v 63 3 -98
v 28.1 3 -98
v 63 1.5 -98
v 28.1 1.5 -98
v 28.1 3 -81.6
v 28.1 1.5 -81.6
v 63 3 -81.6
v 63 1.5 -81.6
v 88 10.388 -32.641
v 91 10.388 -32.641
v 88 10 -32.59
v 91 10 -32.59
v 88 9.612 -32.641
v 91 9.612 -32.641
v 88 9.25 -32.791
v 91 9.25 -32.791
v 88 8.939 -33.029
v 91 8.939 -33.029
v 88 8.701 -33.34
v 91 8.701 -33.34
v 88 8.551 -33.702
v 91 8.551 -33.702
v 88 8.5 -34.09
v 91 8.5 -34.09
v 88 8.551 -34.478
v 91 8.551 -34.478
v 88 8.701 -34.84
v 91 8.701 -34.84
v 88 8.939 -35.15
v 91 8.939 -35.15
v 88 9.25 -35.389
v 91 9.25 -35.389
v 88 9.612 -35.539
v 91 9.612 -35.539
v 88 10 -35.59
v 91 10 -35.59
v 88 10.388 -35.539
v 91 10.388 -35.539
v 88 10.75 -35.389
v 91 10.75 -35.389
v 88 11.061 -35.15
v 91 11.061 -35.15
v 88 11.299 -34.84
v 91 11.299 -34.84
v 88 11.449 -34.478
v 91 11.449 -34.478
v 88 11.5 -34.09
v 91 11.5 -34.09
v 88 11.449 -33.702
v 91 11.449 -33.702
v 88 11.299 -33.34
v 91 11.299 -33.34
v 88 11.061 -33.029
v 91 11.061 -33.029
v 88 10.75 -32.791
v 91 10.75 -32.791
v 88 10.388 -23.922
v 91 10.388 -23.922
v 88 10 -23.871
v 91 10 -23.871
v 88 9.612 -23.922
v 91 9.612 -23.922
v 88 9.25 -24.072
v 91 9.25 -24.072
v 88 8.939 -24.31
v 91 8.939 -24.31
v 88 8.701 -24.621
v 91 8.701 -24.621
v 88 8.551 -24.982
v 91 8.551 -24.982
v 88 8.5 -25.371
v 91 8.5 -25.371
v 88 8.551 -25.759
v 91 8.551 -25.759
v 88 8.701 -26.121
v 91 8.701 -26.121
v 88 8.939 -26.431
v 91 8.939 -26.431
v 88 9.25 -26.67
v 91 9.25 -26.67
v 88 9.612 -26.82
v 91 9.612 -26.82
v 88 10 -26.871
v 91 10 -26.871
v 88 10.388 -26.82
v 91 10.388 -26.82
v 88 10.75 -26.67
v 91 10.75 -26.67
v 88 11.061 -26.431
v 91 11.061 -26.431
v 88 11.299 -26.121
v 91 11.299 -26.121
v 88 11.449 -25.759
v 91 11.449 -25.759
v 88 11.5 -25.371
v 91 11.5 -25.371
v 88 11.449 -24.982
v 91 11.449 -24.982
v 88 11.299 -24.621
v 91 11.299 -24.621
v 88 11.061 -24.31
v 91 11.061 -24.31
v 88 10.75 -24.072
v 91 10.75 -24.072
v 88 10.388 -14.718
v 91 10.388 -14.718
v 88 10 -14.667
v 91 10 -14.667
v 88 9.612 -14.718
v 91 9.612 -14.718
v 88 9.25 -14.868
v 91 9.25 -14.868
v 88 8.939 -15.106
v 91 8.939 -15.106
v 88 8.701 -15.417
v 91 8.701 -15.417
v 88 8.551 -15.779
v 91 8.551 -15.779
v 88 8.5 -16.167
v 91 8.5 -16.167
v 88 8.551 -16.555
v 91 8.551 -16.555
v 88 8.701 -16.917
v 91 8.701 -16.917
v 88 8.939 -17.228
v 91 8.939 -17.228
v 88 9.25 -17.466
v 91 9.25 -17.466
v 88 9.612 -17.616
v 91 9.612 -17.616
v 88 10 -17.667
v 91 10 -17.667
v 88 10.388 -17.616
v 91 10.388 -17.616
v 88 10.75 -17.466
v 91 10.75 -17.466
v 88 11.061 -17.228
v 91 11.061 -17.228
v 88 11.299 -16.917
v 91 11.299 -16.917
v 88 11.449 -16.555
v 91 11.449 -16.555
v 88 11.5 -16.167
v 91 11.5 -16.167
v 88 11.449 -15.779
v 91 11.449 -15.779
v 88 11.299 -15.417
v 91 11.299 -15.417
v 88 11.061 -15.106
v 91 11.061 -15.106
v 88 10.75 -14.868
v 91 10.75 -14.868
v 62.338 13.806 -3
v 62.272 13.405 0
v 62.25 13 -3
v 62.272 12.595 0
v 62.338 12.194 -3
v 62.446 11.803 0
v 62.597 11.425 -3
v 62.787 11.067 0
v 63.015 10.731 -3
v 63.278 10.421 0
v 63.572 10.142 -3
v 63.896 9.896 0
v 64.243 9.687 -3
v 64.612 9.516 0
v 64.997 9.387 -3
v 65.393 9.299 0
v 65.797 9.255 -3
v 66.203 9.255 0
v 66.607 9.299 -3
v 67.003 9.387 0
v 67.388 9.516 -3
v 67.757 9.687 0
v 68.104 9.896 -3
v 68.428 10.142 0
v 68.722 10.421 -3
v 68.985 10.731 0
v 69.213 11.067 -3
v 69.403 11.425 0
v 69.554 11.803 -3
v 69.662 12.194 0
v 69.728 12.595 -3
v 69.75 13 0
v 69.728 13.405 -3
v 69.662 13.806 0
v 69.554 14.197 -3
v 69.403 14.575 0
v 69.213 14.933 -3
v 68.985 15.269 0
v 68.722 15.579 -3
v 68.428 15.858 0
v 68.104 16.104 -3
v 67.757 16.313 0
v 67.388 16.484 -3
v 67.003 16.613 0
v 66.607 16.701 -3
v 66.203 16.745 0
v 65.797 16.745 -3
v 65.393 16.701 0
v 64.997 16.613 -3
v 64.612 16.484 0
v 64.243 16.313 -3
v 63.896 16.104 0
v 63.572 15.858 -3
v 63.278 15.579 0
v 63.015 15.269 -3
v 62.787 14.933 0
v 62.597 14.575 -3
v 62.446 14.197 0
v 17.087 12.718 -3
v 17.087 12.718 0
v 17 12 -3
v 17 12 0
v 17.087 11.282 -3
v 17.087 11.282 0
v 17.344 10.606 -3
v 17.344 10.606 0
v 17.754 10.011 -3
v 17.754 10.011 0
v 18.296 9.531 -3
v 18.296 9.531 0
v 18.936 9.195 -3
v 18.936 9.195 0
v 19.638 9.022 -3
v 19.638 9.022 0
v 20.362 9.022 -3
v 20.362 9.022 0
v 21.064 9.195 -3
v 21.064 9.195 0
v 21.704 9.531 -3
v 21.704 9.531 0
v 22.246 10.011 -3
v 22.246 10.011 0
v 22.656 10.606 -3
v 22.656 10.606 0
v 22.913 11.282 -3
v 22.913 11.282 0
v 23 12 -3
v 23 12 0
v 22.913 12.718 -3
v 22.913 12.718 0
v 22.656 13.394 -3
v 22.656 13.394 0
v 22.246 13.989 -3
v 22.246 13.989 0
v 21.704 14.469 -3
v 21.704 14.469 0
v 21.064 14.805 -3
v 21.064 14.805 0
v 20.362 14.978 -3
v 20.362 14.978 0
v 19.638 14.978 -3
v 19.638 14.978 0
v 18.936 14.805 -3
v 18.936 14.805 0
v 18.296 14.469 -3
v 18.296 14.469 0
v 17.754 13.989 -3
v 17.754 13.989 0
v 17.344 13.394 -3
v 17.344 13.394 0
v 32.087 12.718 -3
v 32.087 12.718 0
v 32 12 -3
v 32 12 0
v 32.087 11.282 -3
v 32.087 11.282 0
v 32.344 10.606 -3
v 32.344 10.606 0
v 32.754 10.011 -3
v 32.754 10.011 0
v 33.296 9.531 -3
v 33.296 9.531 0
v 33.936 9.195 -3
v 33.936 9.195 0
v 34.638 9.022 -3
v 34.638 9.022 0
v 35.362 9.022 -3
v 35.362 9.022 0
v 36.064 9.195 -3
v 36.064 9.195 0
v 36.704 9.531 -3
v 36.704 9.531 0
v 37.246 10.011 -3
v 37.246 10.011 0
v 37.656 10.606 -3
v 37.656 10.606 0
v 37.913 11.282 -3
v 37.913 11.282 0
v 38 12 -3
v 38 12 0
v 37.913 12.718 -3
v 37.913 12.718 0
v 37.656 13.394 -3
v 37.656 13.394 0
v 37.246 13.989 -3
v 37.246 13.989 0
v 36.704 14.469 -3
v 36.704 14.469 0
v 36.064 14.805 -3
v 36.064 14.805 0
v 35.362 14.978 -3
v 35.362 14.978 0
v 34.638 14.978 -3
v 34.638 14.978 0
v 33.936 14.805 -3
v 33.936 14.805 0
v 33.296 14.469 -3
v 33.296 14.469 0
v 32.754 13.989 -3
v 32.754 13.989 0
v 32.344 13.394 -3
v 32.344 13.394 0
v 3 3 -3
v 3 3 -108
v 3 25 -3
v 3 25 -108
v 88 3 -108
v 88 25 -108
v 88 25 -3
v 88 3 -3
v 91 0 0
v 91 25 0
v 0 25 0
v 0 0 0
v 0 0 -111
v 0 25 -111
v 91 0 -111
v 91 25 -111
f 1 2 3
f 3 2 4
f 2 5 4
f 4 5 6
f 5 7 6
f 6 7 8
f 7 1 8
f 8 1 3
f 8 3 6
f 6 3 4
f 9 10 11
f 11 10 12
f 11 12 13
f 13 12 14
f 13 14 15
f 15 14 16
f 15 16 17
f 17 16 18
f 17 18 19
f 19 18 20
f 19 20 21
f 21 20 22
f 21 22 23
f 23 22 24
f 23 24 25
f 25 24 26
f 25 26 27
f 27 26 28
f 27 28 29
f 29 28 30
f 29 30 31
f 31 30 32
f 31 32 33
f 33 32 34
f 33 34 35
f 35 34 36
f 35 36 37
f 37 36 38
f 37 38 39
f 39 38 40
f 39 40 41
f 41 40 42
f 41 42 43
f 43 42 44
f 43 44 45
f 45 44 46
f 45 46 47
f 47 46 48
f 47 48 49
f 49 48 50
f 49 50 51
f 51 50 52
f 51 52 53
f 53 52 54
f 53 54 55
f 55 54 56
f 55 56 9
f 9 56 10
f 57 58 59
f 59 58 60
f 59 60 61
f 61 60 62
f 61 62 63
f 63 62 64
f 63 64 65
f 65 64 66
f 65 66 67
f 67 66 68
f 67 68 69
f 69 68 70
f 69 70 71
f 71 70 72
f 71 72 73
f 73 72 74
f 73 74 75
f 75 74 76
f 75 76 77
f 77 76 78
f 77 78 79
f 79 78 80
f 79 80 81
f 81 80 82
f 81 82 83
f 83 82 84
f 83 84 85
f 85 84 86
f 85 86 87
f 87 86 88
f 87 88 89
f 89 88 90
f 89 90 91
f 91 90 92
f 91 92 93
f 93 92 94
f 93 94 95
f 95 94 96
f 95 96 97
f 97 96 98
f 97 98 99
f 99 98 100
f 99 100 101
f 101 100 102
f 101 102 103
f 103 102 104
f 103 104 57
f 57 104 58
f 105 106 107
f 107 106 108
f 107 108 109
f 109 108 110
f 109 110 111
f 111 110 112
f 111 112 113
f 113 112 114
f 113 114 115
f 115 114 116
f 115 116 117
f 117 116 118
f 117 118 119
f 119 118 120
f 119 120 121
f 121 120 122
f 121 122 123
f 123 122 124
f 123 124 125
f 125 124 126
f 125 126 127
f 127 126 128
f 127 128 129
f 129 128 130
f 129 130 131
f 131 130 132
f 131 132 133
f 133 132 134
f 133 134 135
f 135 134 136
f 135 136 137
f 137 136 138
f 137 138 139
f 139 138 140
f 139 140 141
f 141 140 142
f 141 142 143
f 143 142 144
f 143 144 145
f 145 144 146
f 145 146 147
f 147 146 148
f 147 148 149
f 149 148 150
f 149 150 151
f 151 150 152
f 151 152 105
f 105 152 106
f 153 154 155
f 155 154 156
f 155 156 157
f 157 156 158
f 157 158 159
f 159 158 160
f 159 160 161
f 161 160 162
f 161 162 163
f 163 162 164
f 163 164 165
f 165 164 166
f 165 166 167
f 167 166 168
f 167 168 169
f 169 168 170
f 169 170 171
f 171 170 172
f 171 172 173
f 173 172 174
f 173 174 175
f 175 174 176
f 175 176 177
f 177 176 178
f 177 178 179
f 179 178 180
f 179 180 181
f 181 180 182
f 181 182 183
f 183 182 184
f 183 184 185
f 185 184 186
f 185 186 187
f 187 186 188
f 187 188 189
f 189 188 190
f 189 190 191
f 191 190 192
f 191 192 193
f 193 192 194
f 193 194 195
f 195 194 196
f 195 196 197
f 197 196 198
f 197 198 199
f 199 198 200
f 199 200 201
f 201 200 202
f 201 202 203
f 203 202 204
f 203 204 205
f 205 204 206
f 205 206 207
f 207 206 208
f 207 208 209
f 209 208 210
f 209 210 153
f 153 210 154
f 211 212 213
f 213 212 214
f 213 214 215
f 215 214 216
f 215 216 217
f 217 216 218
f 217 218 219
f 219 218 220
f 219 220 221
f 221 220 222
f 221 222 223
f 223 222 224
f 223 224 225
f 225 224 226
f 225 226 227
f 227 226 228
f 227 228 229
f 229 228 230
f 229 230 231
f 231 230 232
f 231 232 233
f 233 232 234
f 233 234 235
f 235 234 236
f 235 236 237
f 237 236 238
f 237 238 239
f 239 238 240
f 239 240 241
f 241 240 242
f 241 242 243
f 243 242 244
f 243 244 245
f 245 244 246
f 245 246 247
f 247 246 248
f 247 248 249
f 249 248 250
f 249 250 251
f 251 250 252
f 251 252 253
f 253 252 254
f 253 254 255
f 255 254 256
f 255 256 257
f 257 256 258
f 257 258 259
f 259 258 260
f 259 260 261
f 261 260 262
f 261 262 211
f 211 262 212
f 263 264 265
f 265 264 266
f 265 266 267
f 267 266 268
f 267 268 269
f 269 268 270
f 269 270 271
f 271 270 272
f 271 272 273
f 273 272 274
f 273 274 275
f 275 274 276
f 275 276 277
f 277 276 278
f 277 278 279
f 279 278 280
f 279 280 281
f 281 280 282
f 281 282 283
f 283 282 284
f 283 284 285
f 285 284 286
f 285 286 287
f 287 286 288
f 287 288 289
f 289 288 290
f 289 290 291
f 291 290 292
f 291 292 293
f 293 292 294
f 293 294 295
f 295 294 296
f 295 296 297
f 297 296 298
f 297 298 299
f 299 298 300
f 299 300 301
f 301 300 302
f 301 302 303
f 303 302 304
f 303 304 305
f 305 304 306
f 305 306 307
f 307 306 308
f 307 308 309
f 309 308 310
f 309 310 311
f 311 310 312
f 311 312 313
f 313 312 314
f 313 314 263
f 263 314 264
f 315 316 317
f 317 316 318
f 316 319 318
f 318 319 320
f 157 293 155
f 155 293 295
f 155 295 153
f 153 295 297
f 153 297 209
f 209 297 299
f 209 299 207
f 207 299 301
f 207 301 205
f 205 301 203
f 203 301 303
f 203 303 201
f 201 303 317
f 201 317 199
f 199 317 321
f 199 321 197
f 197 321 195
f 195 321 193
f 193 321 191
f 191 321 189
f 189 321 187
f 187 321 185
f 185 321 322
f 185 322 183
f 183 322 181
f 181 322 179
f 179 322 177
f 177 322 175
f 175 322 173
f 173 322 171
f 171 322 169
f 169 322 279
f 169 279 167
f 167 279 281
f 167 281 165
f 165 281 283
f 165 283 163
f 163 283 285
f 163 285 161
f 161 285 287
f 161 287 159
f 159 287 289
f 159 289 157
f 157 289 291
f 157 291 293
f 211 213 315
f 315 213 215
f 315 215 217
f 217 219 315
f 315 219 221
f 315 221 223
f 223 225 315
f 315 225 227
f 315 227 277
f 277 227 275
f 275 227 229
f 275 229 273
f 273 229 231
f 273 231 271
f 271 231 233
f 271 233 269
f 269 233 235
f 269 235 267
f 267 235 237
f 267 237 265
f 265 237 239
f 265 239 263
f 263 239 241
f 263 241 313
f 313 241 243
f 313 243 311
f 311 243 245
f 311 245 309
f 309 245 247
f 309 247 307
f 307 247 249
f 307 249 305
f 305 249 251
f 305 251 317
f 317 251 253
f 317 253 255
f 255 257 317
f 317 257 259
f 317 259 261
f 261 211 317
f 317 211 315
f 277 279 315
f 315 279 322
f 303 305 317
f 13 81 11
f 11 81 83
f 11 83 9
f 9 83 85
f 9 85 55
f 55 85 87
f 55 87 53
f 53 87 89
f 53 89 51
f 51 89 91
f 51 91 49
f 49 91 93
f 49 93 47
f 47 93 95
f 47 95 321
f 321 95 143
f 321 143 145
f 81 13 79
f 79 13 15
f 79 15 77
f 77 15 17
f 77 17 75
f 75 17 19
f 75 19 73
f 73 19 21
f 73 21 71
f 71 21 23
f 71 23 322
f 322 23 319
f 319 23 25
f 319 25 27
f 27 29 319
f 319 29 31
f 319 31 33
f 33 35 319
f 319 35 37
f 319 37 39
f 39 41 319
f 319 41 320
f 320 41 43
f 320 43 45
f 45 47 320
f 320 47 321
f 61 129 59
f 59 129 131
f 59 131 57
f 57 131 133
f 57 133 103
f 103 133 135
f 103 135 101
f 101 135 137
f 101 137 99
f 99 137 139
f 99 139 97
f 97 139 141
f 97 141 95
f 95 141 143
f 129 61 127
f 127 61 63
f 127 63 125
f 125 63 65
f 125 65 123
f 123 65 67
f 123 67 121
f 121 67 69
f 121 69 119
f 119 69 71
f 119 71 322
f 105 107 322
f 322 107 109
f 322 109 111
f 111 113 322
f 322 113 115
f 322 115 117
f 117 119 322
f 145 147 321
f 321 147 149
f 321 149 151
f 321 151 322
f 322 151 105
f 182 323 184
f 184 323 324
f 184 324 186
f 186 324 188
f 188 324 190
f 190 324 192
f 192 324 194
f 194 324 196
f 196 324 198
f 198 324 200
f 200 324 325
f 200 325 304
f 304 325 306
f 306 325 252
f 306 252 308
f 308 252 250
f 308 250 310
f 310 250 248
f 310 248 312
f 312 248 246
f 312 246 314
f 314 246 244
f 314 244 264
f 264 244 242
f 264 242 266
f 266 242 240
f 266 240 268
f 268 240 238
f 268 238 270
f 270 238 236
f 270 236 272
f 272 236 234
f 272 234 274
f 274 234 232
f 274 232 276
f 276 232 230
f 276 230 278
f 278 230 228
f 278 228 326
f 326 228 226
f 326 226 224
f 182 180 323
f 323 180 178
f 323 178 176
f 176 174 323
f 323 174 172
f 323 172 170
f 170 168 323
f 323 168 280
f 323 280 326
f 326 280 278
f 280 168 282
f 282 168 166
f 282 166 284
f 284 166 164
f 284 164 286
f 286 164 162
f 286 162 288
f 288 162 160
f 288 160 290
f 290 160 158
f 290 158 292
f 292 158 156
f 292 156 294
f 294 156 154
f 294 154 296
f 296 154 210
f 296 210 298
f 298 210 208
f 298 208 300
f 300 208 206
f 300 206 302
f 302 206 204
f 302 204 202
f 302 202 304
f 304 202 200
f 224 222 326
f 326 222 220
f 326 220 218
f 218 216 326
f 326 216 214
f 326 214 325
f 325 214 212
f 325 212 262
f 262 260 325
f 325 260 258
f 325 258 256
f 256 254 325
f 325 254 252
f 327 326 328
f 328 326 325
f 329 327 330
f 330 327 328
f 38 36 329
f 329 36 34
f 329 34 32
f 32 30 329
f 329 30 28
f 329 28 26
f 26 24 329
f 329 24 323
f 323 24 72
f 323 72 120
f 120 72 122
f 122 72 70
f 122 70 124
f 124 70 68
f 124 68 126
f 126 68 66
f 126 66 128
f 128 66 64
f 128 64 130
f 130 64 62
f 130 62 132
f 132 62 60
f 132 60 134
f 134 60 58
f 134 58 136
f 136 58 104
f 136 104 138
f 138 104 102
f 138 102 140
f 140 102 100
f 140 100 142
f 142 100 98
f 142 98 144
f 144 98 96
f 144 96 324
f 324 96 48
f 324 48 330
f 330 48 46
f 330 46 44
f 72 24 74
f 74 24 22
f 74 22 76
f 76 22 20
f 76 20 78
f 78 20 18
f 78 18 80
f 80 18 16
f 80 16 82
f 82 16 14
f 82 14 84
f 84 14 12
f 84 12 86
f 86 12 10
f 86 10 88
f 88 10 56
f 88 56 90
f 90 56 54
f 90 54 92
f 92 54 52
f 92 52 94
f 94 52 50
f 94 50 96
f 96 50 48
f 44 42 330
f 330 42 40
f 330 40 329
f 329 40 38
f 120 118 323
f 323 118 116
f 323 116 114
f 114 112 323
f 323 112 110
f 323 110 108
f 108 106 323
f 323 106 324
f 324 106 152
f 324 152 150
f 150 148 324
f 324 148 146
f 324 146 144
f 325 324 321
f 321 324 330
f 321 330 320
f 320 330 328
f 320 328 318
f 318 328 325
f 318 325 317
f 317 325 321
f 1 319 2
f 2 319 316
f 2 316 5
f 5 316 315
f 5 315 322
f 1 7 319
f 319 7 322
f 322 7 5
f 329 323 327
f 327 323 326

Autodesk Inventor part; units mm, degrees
ref_plane "YZ Plane" through (0, 0, 0) normal (1, 0, 0) x (0, 1, 0)
ref_plane "XZ Plane" through (0, 0, 0) normal (0, 1, 0) x (-1, 0, 0)
ref_plane "XY Plane" through (0, 0, 0) normal (0, 0, 1) x (1, 0, 0)
sketch "Esboço1" plane through (0, 0, 0) normal (0, 1, 0) x (-1, 0, 0)
  line L0 (0, 0) -> (-91, 0)
  line L1 (-91, 0) -> (-91, -111)
  line L2 (-91, -111) -> (0, -111)
  line L3 (0, -111) -> (0, 0)
  line L4 (-3, -108) -> (-88, -108)
  line L5 (-88, -108) -> (-88, -3)
  line L6 (-88, -3) -> (-3, -3)
  line L7 (-3, -3) -> (-3, -108)
  dimension "d0" = 3
  dimension "d1" = 3
  dimension "d2" = 3
  dimension "d3" = 3
  dimension "d4" = 85
  dimension "d5" = 105
extrude "Extrusão1" add sketch "Esboço1" along normal blind 3 contours L4 L5 L6 L7
extrude "Extrusão2" add sketch "Esboço1" along normal blind 25
sketch "Esboço2" plane through (0, 0, 0) normal (0, 0, 1) x (1, 0, 0)
  circle A0 centre (20, 12) radius 3
  circle A1 centre (66, 13) radius 3.75
  line L0 (0, 0) -> (0, 25) projected
  line L1 (91, 0) -> (91, 25) projected
  circle A2 centre (35, 12) radius 3
  line L2 (0, 0) -> (91, 0) projected
  point P0 (0, 12.5)
  dimension "d10" = 6
  dimension "d11" = 7.5
  dimension "d25" = 20
  dimension "d26" = 25
  dimension "d27" = 6
  dimension "d28" = 15
  dimension "d29" = 12
  dimension "d30" = 13
  dimension "d31" = 12
extrude "Extrusão3" cut sketch "Esboço2" against normal blind 30
sketch "Esboço3" plane through (91, 0, 0) normal (1, 0, 0) x (0, 0, -1)
  circle A0 centre (16.1671, 10) radius 1.5
  circle A1 centre (34.0898, 10) radius 1.5
  circle A2 centre (25.3707, 10) radius 1.5
  line L0 (0, 0) -> (111, 0) projected
  dimension "d14" = 3
  dimension "d15" = 3
  dimension "d16" = 3
  dimension "d32" = 10
  dimension "d33" = 10
  dimension "d34" = 10
extrude "Extrusão4" cut sketch "Esboço3" against normal blind 10
sketch "Esboço4" plane through (0, 3, 0) normal (0, 1, 0) x (1, 0, 0)
  line L0 (28.1, 81.6) -> (63, 81.6)
  line L1 (63, 81.6) -> (63, 98)
  line L2 (63, 98) -> (28.1, 98)
  line L3 (28.1, 98) -> (28.1, 81.6)
  line L4 (88, 108) -> (88, 3) projected
  line L5 (3, 108) -> (88, 108) projected
  point P0 (0, 0)
  point P1 (63, 89.8)
  dimension "d19" = 34.9
  dimension "d20" = 16.4
  dimension "d23" = 25
  dimension "d24" = 10
extrude "Extrusão5" cut sketch "Esboço4" against normal blind 1.5
properties part number "Caixa_3DPrint"
